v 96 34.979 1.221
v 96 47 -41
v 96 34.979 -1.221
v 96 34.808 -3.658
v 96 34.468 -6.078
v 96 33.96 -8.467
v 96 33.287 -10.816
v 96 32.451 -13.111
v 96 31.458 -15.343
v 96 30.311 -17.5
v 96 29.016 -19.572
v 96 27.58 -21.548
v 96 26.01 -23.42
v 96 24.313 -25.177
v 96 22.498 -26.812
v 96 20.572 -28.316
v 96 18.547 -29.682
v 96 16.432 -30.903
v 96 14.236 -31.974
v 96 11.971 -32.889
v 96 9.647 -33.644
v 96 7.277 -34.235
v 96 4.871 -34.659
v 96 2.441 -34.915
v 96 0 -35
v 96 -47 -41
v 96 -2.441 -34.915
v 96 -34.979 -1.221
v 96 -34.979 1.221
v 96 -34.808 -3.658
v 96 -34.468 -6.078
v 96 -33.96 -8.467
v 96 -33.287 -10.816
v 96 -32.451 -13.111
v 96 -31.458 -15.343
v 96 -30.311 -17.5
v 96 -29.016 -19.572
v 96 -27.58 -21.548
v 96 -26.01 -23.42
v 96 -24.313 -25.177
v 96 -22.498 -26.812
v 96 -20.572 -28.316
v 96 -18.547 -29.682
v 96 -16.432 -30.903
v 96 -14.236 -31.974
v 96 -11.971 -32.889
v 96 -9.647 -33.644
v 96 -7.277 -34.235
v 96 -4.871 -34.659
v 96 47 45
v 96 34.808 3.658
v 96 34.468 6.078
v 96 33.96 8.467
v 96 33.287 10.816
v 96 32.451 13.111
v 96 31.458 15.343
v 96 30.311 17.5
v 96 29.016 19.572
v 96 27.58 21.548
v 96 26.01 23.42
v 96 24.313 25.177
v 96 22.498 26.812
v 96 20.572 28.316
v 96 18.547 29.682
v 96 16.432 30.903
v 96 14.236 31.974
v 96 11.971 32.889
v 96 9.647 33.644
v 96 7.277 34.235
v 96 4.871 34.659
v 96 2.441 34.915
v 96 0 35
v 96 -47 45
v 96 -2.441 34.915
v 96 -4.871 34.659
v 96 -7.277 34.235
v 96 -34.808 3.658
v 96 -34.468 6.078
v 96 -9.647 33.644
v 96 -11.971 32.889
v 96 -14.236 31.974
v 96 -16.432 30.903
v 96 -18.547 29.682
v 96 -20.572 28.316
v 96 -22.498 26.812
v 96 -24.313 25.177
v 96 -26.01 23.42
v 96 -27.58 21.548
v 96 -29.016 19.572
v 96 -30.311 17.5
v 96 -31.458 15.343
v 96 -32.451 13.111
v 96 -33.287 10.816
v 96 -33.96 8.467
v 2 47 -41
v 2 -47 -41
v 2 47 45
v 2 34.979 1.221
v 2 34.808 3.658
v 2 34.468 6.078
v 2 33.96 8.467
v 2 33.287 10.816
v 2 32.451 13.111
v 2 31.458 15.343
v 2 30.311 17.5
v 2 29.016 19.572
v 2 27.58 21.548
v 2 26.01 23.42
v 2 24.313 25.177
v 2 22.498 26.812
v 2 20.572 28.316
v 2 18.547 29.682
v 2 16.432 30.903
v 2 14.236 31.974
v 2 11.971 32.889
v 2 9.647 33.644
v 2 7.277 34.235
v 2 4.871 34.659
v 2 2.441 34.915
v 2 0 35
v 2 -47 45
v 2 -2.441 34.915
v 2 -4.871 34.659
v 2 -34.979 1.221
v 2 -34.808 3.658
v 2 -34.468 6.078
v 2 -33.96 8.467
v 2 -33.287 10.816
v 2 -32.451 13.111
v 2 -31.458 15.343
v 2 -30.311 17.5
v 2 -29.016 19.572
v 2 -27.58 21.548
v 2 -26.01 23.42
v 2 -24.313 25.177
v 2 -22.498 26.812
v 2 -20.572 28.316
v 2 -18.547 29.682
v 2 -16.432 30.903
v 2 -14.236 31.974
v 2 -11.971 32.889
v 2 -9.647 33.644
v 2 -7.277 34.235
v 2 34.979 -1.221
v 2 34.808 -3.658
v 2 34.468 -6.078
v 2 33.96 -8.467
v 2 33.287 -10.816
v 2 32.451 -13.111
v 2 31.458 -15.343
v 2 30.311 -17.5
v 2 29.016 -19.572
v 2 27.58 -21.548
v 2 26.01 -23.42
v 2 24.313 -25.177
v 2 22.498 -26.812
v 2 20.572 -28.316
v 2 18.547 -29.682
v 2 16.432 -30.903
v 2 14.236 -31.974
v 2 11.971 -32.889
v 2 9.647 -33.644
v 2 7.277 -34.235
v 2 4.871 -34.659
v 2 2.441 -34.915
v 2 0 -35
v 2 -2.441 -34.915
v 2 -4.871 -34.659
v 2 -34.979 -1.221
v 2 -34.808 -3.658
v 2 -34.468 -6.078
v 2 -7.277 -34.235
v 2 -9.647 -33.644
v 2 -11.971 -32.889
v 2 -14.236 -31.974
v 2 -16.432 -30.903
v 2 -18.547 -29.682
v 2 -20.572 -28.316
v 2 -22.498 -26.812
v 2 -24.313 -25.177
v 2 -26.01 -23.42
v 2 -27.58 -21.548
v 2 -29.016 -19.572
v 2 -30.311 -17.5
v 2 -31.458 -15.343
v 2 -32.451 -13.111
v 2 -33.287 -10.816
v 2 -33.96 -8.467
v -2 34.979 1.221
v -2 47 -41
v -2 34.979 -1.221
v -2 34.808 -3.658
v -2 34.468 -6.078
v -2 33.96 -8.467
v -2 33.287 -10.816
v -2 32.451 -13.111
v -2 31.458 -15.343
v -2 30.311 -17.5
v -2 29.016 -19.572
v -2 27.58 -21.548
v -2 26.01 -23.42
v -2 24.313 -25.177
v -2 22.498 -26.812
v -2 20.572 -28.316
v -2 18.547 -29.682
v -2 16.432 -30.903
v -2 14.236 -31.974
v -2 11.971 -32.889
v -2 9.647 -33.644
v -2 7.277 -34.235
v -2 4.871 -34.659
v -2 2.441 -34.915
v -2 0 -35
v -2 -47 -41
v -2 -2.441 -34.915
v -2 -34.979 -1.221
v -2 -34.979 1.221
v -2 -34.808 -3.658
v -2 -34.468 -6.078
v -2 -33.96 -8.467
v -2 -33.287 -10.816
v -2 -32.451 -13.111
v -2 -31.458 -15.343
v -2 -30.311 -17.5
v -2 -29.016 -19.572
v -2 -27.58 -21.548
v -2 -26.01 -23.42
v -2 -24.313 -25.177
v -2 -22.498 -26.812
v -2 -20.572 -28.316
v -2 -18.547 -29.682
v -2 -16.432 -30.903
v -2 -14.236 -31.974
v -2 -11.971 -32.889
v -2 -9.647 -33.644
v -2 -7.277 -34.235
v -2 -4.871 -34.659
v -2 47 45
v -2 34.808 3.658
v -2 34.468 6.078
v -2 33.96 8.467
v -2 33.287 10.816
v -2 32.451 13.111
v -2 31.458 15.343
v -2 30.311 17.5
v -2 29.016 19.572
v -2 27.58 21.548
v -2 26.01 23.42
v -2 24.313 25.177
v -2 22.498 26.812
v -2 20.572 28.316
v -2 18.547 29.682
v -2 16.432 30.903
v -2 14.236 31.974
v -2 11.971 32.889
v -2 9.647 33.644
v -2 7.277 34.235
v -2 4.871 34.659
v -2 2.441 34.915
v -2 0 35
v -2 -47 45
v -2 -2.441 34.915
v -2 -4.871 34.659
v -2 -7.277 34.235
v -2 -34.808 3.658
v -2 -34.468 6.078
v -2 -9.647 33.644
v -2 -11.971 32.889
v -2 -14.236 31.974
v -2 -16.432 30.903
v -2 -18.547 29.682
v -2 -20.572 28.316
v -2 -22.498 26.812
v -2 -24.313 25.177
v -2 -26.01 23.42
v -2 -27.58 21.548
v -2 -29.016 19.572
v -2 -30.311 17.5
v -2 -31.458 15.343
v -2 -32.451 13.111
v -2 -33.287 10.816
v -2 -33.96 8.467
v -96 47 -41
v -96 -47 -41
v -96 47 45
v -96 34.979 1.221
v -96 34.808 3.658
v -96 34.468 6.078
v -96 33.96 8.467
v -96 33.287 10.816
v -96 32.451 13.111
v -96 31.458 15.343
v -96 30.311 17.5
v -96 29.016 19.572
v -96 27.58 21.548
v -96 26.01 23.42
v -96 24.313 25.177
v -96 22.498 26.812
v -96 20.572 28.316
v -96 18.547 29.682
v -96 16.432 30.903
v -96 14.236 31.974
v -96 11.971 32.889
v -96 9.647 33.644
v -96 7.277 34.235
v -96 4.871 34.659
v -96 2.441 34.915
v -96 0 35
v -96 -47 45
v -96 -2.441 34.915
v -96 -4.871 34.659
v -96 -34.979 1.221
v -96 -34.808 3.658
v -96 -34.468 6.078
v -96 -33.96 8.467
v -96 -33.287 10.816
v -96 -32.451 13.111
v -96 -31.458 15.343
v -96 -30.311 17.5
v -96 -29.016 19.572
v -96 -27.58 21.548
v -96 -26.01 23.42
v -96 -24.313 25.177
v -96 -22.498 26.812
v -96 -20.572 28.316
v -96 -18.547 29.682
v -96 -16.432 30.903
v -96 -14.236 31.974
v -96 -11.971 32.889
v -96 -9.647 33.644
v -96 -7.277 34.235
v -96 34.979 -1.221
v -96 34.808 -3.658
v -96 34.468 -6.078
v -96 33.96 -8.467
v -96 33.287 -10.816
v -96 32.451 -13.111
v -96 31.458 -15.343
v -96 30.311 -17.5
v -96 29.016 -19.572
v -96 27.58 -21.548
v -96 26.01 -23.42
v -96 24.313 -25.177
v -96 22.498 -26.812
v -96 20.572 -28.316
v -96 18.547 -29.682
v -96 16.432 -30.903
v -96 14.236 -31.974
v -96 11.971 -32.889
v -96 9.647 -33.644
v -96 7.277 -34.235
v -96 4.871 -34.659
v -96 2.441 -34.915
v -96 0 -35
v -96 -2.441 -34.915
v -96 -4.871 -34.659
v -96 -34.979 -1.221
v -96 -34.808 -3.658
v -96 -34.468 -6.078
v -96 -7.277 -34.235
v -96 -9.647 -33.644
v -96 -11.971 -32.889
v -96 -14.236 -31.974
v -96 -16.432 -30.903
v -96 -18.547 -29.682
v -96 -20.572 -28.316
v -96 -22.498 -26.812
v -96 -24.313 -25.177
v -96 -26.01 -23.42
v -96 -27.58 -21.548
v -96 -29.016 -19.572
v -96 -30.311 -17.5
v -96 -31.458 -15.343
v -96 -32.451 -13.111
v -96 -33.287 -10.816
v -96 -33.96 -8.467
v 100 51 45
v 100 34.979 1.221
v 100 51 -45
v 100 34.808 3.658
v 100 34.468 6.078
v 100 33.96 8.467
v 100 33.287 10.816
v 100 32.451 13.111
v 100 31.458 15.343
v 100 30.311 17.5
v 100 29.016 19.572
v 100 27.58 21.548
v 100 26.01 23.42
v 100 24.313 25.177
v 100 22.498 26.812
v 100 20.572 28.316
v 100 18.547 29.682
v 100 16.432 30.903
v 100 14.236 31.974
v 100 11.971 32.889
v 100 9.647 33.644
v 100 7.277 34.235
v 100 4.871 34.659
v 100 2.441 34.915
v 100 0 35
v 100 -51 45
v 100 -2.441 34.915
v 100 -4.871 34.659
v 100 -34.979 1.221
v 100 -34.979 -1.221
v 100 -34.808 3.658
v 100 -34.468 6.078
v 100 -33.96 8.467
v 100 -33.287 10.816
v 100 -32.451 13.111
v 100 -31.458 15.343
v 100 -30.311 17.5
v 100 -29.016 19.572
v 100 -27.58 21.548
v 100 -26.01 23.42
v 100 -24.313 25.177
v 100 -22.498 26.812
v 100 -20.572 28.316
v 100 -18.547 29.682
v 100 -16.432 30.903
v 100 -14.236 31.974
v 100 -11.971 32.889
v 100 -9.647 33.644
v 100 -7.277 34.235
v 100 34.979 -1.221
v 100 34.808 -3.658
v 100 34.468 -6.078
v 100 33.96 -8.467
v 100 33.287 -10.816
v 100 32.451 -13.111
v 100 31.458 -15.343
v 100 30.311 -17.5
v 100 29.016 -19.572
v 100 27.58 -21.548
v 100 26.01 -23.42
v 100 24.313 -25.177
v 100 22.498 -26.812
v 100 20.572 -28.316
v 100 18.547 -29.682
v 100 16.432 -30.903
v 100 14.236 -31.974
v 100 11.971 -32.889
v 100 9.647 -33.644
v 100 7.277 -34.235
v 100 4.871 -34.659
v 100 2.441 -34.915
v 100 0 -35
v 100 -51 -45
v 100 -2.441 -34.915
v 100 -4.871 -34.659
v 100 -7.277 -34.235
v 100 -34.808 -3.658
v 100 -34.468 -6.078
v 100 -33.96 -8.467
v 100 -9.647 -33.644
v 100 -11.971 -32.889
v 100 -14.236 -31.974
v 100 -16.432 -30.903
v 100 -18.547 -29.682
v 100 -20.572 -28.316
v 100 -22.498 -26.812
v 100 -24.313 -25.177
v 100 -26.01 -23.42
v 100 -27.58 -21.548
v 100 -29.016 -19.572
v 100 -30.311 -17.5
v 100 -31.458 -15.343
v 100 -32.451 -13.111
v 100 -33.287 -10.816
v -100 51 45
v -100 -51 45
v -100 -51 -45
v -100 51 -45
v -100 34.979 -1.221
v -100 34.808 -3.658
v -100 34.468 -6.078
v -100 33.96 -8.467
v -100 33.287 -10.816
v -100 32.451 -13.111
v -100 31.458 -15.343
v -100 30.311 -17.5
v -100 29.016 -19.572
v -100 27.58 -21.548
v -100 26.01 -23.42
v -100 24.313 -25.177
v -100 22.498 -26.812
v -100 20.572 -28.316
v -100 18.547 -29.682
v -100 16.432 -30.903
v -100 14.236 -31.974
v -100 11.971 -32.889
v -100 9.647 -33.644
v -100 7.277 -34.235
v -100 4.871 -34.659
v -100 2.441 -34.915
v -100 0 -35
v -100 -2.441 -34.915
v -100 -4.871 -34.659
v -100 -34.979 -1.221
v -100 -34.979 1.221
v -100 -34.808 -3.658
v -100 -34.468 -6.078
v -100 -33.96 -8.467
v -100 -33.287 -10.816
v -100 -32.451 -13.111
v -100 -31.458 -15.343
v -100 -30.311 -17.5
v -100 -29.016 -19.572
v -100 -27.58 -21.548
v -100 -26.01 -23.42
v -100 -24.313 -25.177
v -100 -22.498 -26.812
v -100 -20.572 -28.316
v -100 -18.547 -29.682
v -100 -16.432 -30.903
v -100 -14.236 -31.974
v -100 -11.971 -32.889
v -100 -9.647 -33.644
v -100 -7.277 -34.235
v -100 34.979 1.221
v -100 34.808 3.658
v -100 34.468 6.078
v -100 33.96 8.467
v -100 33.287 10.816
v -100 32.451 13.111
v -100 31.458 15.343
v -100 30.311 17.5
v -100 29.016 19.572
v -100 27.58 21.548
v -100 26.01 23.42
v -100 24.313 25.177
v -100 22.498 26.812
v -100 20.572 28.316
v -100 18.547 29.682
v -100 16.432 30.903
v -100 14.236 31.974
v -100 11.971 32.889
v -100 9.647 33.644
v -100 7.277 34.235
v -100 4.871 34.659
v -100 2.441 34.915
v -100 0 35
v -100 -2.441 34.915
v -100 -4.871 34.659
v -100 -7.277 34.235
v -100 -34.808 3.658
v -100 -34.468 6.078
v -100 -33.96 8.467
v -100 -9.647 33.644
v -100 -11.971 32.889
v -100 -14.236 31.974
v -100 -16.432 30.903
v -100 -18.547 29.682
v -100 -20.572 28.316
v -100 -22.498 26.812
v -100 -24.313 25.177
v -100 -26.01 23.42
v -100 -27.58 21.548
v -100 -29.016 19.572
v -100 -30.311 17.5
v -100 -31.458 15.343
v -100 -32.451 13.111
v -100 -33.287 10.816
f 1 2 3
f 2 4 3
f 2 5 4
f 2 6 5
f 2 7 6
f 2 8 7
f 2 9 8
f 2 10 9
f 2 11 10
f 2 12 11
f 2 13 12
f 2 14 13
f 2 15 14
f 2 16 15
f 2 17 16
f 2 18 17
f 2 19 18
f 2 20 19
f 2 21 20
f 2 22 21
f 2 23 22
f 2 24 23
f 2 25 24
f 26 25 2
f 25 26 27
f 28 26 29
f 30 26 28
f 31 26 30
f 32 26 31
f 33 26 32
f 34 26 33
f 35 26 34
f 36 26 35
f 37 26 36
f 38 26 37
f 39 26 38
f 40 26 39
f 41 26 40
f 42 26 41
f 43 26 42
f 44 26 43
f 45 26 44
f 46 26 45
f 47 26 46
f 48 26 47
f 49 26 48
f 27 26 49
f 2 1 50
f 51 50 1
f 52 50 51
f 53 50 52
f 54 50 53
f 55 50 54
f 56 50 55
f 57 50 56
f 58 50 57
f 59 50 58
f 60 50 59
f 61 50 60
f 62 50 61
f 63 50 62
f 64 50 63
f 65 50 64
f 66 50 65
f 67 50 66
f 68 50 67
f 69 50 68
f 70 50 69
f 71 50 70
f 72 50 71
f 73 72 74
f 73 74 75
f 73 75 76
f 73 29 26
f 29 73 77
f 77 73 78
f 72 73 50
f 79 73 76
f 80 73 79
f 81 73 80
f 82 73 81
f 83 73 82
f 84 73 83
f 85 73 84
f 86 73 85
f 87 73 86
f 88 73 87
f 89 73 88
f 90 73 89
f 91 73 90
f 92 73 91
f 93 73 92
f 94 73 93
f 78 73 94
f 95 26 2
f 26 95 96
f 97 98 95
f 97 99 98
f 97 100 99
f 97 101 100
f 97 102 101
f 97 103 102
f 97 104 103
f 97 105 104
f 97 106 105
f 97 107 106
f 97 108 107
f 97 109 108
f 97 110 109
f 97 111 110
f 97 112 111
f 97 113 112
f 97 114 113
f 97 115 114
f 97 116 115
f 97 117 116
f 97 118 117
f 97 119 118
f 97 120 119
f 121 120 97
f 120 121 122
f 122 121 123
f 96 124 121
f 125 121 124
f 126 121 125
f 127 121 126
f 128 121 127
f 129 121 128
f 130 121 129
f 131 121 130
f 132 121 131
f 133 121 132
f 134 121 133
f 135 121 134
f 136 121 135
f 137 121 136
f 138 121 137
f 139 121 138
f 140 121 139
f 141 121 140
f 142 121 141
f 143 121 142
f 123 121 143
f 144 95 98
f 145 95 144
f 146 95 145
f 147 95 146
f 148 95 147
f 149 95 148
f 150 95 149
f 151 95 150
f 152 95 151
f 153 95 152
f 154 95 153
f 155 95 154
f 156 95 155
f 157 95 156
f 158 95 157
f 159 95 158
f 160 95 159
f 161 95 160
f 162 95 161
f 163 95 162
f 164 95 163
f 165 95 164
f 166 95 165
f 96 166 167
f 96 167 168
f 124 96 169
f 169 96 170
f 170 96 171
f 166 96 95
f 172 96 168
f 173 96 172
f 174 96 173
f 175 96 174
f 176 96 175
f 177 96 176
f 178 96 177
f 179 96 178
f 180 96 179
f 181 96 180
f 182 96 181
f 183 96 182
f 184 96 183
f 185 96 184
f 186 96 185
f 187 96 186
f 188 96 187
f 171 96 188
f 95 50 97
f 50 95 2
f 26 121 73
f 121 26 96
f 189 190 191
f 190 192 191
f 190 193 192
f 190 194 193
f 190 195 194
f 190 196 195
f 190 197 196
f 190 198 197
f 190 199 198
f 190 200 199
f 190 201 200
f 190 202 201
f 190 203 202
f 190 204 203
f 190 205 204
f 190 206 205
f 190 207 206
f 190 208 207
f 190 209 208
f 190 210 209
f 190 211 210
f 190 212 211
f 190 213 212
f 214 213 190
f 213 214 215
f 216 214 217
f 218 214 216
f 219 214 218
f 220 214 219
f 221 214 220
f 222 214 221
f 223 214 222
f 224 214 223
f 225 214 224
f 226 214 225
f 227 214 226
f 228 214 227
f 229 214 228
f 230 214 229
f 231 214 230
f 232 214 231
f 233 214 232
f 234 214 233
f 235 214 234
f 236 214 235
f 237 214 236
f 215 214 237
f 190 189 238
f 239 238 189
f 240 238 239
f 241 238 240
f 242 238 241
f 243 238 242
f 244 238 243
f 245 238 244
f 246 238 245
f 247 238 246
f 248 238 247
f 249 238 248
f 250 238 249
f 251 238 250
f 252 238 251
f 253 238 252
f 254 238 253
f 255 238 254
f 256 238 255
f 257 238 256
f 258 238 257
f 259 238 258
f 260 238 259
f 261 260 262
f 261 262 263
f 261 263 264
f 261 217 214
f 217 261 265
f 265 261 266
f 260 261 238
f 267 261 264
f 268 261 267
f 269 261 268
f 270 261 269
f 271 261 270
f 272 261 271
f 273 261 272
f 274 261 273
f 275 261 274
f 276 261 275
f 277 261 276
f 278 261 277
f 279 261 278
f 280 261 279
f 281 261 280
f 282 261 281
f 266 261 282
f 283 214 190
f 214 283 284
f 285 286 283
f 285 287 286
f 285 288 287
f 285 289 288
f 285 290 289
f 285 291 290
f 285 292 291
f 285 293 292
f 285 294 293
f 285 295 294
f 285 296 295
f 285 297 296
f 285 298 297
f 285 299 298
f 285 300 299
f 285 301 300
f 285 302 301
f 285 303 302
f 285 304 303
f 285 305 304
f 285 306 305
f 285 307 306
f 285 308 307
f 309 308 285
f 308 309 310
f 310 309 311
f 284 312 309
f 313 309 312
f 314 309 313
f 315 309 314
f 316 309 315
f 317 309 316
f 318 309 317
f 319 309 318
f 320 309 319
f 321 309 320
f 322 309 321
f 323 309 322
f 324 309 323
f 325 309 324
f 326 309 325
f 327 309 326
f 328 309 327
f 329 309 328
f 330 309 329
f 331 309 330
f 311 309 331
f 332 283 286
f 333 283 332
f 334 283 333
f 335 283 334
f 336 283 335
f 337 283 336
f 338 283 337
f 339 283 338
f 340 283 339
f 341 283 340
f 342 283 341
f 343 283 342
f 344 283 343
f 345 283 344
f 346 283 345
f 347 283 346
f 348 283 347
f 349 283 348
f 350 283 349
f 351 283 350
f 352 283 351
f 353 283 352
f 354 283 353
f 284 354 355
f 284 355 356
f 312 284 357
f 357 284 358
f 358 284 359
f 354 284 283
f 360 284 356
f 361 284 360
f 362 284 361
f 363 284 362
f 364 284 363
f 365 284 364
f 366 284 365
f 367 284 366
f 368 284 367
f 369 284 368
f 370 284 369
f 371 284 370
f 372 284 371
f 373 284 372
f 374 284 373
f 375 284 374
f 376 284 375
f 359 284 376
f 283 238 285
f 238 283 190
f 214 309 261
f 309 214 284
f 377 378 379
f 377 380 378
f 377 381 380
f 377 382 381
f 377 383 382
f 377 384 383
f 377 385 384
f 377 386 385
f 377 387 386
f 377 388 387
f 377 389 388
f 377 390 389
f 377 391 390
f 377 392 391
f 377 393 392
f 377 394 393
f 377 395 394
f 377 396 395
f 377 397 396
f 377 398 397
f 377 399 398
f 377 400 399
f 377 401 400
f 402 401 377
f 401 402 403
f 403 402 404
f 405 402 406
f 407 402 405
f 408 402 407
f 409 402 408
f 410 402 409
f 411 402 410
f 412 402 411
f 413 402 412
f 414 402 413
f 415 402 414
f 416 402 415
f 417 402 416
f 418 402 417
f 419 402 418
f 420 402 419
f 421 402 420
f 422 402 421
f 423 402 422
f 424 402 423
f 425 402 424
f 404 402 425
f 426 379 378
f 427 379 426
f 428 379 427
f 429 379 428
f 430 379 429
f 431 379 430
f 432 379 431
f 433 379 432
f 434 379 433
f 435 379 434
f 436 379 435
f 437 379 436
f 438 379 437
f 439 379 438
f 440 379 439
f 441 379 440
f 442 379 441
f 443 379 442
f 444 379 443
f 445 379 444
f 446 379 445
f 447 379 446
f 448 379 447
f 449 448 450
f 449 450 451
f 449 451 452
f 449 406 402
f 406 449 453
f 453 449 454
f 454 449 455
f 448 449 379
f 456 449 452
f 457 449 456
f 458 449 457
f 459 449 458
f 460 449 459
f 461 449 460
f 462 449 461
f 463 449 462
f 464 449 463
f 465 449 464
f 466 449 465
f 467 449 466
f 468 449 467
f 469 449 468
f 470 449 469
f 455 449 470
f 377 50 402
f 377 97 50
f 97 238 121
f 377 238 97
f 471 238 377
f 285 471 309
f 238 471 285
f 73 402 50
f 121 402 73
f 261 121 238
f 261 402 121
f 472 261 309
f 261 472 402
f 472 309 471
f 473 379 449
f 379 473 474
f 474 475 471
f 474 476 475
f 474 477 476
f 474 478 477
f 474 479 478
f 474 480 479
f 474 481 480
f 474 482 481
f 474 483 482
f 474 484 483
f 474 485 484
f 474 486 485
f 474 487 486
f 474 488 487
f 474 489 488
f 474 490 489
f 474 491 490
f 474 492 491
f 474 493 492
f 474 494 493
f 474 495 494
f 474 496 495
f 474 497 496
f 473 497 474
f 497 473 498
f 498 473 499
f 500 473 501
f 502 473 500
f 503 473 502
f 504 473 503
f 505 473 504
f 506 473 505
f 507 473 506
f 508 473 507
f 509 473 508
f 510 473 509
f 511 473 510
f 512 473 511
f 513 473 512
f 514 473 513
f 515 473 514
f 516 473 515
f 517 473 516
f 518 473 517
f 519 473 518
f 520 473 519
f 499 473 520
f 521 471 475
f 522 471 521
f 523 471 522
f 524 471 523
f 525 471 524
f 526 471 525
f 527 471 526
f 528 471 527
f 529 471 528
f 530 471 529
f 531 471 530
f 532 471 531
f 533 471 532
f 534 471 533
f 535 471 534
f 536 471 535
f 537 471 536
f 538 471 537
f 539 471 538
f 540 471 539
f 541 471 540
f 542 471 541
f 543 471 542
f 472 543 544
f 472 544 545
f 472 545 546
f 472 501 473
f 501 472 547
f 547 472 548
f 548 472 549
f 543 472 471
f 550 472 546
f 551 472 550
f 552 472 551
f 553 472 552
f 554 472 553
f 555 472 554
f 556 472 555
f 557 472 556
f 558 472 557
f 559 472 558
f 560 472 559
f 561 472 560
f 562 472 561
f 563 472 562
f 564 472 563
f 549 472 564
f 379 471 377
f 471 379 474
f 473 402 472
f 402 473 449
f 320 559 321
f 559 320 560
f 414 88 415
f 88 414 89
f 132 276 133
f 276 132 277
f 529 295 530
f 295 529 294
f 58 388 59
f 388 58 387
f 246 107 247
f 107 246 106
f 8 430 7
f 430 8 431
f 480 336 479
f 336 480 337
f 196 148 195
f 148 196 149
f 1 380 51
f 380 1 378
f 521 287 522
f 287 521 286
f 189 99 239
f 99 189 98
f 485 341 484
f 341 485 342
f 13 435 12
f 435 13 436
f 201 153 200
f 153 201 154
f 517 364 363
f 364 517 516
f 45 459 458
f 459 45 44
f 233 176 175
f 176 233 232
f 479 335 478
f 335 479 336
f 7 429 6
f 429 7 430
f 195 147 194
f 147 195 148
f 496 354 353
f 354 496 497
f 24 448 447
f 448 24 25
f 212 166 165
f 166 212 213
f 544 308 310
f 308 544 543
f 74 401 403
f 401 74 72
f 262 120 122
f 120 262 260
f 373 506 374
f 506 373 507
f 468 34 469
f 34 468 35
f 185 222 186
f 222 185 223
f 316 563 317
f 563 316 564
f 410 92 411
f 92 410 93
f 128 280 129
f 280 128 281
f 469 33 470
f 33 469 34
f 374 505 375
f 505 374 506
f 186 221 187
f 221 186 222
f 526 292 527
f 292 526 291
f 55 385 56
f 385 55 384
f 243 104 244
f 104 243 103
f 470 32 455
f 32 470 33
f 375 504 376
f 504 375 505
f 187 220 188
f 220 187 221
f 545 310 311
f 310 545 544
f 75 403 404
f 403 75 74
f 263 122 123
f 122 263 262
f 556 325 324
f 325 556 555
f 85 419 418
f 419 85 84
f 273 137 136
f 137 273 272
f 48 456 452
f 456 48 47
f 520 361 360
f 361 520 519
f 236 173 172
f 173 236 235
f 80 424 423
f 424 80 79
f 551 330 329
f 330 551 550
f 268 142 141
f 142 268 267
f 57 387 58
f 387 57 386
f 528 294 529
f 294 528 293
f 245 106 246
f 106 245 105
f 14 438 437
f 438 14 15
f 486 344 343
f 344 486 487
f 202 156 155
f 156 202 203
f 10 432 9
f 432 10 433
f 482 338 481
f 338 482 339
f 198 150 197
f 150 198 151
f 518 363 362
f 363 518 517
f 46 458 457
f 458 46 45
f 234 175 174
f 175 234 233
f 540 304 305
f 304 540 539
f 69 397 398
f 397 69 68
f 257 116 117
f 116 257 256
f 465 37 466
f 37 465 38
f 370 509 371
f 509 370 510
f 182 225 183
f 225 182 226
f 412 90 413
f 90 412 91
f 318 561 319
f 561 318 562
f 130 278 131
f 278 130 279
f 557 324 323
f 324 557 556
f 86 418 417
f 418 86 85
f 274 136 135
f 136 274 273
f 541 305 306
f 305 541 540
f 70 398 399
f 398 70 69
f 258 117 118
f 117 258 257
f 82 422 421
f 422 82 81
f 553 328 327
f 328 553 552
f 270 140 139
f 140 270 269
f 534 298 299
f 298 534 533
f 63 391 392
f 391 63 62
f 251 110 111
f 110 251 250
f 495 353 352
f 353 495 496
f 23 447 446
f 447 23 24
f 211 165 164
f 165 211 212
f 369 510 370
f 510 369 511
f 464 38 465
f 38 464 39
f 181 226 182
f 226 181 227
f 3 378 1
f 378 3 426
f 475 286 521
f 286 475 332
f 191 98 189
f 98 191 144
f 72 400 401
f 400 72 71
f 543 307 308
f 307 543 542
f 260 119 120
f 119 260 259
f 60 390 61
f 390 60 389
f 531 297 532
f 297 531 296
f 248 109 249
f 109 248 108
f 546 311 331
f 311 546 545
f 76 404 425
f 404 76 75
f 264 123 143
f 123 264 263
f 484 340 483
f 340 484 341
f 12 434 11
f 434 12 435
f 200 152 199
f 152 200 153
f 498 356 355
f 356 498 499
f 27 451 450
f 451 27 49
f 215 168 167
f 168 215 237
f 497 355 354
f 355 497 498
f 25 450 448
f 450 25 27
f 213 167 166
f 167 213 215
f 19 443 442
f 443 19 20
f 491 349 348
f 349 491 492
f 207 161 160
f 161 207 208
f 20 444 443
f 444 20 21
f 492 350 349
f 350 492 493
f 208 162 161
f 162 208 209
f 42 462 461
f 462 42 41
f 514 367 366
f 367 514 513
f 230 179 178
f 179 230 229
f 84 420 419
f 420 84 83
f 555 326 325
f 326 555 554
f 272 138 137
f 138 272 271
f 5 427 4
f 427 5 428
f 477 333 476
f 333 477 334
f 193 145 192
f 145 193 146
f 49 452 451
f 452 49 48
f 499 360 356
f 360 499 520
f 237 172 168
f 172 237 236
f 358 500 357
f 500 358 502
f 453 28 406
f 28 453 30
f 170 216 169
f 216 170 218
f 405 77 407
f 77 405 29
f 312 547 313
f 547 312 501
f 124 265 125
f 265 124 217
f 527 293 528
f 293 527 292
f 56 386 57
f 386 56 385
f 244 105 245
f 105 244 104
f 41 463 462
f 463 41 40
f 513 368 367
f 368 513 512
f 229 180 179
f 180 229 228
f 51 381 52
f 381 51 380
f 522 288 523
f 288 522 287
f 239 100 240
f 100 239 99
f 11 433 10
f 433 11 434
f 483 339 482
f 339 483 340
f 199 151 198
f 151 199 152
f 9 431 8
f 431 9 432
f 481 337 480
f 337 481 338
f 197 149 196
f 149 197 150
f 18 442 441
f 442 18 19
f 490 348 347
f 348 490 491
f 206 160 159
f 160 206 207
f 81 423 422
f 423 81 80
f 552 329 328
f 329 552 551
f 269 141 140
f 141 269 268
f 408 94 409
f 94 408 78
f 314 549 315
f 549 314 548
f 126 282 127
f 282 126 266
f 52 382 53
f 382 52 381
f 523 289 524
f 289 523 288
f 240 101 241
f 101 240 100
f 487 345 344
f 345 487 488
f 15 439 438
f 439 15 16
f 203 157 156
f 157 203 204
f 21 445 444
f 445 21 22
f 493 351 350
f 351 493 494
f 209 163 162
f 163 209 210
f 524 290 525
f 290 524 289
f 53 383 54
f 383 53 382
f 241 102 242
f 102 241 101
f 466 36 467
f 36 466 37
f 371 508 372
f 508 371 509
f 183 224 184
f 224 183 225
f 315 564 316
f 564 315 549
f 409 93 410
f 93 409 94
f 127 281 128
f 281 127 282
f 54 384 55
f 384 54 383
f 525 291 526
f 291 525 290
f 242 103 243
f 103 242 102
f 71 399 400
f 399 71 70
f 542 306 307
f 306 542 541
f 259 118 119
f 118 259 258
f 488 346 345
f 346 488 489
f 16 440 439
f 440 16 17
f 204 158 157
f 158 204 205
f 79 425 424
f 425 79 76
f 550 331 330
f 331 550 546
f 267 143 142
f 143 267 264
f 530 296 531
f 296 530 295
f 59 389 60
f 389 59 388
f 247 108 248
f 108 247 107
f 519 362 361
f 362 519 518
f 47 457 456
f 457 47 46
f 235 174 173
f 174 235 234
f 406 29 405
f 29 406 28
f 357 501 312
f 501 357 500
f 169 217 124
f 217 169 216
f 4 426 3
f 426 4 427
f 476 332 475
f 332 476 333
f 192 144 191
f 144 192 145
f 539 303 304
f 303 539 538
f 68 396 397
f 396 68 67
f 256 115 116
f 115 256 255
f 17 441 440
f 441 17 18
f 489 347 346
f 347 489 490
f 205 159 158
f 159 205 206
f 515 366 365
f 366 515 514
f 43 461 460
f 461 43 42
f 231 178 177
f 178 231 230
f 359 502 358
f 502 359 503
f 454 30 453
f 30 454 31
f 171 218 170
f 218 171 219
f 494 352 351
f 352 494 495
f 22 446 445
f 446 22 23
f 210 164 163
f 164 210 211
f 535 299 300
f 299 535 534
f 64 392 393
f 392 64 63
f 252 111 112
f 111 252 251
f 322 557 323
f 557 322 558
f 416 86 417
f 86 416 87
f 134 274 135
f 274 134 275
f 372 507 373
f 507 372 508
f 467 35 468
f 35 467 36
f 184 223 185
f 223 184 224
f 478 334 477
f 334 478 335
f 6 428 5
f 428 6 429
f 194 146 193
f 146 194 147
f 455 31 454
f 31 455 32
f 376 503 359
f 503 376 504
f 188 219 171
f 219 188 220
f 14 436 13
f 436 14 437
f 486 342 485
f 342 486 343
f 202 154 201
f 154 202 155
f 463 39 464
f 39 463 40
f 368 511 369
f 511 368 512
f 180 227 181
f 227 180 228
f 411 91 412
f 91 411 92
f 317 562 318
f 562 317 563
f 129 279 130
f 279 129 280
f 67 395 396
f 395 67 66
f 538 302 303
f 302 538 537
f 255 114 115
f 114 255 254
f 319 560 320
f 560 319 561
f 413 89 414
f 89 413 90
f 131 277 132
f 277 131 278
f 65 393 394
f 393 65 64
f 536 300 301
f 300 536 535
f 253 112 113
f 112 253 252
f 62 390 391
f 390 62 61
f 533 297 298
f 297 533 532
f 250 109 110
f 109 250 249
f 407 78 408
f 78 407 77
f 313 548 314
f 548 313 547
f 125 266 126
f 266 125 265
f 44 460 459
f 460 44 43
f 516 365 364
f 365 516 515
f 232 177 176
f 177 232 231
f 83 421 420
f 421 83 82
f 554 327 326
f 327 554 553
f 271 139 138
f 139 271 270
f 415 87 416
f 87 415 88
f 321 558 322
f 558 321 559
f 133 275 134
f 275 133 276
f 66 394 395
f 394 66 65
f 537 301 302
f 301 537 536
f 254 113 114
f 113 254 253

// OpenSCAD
$fn = 90;
height = 90;
length = 200;
holeWidth = 94;

gap = (length - 2*holeWidth)/3;
echo(gap=gap);
width = holeWidth+2*gap;
sideholeDiameter = height-20;	

difference(){	
	cube([length, width, height], center=true);
	
	xAbs = (gap + holeWidth)/2;
	for(x = [xAbs, -xAbs]){
		translate([x, 0, 0]){
			translate([0, 0, gap])
				#cube([holeWidth, holeWidth, height], center=true);
		}
	}
	rotate([0, 90, 0])
			#cylinder(h=length, d=sideholeDiameter, center=true);
}
